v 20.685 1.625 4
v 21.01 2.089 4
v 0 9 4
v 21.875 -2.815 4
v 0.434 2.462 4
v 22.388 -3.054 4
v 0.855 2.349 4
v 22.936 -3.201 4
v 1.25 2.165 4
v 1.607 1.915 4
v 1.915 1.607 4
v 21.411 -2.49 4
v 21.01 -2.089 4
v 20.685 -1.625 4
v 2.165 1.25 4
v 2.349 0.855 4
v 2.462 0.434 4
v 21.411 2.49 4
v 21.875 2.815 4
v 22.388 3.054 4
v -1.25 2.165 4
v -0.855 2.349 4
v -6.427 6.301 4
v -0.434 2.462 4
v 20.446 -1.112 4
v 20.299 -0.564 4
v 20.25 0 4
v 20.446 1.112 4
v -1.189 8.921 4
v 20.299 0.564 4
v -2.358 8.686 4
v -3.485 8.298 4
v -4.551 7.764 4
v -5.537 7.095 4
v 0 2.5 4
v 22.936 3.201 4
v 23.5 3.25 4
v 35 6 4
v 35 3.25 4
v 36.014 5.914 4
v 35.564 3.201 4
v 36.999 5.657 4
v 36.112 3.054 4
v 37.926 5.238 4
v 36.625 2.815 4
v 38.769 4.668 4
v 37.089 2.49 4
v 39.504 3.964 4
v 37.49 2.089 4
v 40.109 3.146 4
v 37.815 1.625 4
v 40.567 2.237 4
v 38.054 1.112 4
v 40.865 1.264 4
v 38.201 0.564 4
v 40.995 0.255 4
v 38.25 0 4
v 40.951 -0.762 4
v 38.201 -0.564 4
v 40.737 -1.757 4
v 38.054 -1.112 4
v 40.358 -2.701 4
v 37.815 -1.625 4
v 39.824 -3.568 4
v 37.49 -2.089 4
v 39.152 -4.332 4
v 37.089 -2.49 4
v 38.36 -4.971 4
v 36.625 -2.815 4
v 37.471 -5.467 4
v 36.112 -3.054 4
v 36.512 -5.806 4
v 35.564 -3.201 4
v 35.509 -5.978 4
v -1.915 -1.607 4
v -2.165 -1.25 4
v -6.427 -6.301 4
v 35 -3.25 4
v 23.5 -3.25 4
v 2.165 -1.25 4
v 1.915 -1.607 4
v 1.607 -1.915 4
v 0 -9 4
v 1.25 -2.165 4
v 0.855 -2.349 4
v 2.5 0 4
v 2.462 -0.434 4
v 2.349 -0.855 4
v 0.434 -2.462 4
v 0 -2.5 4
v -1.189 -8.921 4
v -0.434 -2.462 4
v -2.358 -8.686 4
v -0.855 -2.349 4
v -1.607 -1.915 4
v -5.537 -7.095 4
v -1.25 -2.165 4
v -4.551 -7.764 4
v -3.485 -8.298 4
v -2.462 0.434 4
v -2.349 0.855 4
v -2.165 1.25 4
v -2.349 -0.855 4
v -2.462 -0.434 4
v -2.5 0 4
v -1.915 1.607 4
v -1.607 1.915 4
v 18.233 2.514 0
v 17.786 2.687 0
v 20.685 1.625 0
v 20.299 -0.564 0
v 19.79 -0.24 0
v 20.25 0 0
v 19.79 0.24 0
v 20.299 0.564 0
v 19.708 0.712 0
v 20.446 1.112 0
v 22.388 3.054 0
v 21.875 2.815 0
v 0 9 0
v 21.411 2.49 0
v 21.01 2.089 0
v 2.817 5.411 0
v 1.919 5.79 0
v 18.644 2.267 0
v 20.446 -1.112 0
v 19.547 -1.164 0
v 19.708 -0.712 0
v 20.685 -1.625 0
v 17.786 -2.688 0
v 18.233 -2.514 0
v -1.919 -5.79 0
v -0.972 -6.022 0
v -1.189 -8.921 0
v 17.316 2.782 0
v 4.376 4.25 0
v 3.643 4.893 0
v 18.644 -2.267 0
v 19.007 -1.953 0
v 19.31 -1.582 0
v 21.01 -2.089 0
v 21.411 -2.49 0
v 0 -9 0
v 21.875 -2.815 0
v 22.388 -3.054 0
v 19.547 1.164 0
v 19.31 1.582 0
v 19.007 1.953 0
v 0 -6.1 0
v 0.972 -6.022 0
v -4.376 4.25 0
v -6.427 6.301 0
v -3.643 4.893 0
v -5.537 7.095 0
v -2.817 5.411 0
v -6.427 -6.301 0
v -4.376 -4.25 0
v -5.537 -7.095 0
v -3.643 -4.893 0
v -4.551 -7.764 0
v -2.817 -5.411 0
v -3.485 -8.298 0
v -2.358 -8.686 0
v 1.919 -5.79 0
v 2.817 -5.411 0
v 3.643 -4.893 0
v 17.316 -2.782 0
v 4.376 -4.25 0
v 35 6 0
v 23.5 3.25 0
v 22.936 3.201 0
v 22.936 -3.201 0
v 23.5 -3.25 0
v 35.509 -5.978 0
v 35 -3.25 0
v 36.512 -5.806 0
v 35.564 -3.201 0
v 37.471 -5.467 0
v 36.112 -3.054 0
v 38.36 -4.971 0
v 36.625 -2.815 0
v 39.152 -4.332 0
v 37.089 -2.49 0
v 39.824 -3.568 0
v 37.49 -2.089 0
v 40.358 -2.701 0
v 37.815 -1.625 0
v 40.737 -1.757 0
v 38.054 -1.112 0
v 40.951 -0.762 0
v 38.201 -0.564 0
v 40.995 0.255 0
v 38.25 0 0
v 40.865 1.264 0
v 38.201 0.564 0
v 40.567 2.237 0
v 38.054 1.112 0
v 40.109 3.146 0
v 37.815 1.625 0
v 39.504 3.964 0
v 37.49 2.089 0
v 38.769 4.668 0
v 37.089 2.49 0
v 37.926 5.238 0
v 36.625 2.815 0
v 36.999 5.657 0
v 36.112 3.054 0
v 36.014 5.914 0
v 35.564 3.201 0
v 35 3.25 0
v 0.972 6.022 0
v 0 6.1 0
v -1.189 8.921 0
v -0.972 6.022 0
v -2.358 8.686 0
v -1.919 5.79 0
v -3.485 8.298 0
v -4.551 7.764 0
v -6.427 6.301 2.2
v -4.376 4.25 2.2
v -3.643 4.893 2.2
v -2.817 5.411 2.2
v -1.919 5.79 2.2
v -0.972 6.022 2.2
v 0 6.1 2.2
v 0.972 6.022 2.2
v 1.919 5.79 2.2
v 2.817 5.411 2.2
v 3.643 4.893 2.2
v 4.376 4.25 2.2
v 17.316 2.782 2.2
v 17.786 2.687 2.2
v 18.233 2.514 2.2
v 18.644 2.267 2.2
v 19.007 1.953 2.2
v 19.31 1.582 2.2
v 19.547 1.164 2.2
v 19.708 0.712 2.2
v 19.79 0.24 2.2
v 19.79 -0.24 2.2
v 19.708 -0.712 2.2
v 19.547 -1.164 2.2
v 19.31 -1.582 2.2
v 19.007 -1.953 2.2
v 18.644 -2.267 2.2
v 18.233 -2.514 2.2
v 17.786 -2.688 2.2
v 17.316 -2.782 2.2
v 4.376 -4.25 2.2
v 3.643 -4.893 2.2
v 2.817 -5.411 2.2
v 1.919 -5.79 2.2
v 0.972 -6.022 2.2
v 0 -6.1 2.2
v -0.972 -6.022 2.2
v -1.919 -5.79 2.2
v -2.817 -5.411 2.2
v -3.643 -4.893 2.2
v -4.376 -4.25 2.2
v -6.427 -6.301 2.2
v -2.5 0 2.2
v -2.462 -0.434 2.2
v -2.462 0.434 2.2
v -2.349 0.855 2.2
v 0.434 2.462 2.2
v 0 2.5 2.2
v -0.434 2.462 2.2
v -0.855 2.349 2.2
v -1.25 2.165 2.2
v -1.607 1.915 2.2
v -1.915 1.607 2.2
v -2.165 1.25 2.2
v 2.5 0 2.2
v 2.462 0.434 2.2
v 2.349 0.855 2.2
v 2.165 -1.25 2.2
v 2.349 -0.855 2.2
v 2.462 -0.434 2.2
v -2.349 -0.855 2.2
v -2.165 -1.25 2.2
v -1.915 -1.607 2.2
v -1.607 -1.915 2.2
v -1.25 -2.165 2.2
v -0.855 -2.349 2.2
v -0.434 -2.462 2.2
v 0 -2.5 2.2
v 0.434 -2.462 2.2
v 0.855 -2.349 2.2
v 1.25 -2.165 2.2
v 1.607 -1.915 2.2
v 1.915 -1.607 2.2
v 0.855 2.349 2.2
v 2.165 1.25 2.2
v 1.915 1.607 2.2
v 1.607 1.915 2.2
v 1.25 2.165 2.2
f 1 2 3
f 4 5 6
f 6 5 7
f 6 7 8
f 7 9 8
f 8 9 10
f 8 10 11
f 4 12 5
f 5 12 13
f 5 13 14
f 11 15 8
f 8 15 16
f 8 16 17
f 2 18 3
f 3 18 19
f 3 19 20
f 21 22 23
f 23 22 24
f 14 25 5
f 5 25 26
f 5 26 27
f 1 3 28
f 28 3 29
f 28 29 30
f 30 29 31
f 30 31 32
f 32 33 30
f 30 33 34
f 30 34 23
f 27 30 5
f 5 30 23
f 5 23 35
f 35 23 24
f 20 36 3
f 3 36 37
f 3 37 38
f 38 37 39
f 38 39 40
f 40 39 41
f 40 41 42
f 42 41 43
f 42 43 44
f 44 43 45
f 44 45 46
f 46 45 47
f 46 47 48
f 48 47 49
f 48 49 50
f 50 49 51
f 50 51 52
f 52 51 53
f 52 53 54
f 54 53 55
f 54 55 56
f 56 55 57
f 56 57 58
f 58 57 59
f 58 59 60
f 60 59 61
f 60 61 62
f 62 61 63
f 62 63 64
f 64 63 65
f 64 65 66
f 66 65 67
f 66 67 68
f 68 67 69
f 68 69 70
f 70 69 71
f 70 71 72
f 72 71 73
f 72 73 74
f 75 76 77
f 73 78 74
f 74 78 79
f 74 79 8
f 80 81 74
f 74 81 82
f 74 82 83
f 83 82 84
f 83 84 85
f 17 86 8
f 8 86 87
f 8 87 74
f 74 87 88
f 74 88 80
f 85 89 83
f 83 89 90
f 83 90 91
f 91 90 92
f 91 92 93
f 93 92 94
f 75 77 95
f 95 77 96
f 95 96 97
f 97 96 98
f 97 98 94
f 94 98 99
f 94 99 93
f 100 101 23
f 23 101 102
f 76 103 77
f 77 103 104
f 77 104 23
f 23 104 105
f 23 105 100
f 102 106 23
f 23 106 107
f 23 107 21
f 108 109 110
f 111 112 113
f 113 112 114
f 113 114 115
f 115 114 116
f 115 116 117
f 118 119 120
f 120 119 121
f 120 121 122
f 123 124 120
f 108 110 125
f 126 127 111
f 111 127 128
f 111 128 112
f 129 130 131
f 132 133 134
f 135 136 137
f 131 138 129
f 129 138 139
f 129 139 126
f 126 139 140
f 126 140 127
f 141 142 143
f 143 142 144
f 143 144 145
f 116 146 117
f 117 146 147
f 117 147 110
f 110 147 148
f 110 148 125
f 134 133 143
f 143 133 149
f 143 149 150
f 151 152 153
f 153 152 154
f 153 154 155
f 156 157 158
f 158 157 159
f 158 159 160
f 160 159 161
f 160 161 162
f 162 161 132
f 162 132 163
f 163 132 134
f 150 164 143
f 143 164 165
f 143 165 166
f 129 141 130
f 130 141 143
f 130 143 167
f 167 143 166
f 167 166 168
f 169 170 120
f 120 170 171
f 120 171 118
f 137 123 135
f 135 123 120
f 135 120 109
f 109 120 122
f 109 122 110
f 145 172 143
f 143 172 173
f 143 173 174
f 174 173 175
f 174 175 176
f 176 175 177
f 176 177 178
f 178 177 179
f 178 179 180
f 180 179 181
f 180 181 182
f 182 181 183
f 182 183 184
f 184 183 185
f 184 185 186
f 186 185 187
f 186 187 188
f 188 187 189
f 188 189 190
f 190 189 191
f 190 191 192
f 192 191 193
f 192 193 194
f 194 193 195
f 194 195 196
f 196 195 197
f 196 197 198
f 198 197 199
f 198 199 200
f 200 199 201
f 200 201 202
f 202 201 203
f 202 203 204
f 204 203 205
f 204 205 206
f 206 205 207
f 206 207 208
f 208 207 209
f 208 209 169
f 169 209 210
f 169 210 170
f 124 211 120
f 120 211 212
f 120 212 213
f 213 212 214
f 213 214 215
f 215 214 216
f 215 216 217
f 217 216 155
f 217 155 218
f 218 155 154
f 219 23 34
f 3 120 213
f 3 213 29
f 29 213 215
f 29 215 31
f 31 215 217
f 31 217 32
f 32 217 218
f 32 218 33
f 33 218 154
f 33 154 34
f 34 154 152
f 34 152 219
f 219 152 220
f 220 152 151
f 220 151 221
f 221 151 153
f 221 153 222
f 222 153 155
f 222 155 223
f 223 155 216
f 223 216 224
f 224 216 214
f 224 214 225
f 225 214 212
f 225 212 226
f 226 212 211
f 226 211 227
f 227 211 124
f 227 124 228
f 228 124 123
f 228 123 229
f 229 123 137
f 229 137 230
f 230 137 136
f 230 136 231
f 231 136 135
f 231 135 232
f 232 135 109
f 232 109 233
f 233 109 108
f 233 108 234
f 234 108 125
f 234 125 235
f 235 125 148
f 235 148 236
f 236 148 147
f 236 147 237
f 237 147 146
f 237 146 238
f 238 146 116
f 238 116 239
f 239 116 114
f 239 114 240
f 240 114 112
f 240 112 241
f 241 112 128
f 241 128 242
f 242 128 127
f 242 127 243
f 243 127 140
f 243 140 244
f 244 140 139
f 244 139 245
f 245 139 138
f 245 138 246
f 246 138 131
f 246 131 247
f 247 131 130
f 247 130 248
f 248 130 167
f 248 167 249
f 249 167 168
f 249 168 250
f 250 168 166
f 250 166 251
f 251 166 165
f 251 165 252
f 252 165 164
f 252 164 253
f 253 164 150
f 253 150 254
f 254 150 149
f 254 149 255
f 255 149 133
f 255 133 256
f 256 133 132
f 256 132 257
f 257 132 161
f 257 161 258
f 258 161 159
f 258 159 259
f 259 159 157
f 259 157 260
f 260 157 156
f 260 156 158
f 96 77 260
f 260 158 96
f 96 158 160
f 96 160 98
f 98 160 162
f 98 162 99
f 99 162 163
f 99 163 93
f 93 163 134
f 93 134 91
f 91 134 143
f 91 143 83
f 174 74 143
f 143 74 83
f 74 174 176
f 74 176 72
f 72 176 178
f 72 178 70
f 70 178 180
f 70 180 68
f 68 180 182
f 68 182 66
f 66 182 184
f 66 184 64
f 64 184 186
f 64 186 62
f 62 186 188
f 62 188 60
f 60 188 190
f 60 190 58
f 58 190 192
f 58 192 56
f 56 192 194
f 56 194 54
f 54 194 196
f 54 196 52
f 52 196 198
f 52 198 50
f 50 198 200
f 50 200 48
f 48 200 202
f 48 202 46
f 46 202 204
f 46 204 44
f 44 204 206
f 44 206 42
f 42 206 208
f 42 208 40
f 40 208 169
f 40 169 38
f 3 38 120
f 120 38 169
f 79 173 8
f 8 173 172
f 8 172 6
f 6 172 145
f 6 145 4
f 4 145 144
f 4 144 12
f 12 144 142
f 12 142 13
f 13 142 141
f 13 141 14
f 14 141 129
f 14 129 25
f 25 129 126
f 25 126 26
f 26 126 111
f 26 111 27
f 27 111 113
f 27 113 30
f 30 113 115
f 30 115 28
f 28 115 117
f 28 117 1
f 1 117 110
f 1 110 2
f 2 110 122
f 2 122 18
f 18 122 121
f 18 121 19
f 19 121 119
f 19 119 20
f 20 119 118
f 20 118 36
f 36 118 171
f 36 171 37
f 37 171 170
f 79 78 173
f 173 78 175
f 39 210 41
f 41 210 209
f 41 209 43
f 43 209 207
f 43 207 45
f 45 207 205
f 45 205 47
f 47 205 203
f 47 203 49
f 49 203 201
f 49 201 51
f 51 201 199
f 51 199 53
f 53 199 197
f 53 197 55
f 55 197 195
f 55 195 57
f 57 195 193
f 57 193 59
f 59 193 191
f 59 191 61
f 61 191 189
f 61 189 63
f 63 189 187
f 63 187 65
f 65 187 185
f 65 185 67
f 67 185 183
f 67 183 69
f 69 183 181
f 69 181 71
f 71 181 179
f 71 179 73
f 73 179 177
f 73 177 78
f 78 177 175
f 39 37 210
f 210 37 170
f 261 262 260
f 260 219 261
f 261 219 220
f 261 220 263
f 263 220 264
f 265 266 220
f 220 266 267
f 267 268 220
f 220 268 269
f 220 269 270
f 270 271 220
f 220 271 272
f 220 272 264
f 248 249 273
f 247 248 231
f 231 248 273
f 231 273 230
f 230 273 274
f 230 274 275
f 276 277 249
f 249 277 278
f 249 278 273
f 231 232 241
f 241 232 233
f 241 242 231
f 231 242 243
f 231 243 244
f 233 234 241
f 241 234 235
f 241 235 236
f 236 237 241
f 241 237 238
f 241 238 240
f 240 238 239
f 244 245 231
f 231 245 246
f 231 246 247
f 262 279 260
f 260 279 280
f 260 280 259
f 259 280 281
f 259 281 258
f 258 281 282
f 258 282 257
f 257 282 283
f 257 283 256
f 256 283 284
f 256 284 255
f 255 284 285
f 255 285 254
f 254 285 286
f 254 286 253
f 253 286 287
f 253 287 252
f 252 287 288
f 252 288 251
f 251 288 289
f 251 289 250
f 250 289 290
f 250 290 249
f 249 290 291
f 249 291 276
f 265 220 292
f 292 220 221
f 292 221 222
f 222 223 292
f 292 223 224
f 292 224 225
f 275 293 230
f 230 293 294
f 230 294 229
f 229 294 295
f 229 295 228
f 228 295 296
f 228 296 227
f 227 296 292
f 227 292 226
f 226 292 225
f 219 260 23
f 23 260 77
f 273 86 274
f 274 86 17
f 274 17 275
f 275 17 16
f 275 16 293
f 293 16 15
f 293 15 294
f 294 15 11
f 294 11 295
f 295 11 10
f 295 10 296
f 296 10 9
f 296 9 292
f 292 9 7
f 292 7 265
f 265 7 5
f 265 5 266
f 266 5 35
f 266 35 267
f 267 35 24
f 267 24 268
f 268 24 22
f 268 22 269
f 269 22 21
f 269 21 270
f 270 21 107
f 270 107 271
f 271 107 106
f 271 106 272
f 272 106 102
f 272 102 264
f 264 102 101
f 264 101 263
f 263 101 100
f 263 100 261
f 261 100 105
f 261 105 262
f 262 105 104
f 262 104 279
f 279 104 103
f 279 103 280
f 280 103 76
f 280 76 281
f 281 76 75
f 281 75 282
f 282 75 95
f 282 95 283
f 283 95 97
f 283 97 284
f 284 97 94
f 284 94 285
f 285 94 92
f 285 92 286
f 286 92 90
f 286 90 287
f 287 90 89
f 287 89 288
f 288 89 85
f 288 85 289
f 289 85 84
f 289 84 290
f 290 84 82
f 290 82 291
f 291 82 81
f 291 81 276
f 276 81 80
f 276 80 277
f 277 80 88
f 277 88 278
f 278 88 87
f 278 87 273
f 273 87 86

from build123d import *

# Parameters (mm, degrees)
MAIN_DEPTH          = 4
ESQUISSE2_R         = 2.5
BOSS_EXTRUDE1_DEPTH = 1.8


with BuildPart() as part:
    # Esquisse1 → Main (new body)
    with BuildSketch(Plane.XY):
        with BuildLine():
            Line((-4.375785644, 4.25), (-6.426543071, 6.300757427))
            ThreePointArc((-6.426543071, 6.300757427), (-3.48519606, 8.297795395), (0, 9))
            Line((0, 9), (35, 6))
            ThreePointArc((35, 6), (40.994596048, 0.254594236), (35.508729866, -5.978393925))
            Line((35.508729866, -5.978393925), (0, -9))
            ThreePointArc((0, -9), (-3.48519606, -8.297795395), (-6.426543071, -6.300757427))
            Line((-6.426543071, -6.300757427), (-4.375785644, -4.25))
            ThreePointArc((-4.375785644, -4.25), (0, -6.1), (4.375785644, -4.25))
            Line((4.375785644, -4.25), (17.31559729, -2.78215714))
            ThreePointArc((17.31559729, -2.78215714), (19.8, 0), (17.31559729, 2.78215714))
            Line((17.31559729, 2.78215714), (4.375785644, 4.25))
            ThreePointArc((4.375785644, 4.25), (0, 6.1), (-4.375785644, 4.25))
        make_face()
        with BuildLine():
            Line((23.5, 3.25), (35, 3.25))
            ThreePointArc((35, 3.25), (38.25, 0), (35, -3.25))
            Line((35, -3.25), (23.5, -3.25))
            ThreePointArc((23.5, -3.25), (20.25, 0), (23.5, 3.25))
        make_face(mode=Mode.SUBTRACT)
    extrude(amount=MAIN_DEPTH)

    # Esquisse2 → Boss-Extrude1 (add)
    with BuildSketch(Plane(origin=(0, 0, 4), x_dir=(-1, 0, 0), z_dir=(0, 0, -1))):
        with BuildLine():
            Line((0, -9), (-13.008239171, -7.893067292))
            ThreePointArc((-13.008239171, -7.893067292), (-20.250000727, -0.004029611), (-13.008239171, 7.885008071))
            Line((-13.008239171, 7.885008071), (0, 9))
            ThreePointArc((0, 9), (3.48519606, 8.297795395), (6.426543071, 6.300757427))
            Line((6.426543071, 6.300757427), (6.426543071, -6.300757427))
            ThreePointArc((6.426543071, -6.300757427), (3.48519606, -8.297795395), (0, -9))
        make_face()
        Circle(ESQUISSE2_R, mode=Mode.SUBTRACT)
    extrude(amount=BOSS_EXTRUDE1_DEPTH)


solid = part.part
